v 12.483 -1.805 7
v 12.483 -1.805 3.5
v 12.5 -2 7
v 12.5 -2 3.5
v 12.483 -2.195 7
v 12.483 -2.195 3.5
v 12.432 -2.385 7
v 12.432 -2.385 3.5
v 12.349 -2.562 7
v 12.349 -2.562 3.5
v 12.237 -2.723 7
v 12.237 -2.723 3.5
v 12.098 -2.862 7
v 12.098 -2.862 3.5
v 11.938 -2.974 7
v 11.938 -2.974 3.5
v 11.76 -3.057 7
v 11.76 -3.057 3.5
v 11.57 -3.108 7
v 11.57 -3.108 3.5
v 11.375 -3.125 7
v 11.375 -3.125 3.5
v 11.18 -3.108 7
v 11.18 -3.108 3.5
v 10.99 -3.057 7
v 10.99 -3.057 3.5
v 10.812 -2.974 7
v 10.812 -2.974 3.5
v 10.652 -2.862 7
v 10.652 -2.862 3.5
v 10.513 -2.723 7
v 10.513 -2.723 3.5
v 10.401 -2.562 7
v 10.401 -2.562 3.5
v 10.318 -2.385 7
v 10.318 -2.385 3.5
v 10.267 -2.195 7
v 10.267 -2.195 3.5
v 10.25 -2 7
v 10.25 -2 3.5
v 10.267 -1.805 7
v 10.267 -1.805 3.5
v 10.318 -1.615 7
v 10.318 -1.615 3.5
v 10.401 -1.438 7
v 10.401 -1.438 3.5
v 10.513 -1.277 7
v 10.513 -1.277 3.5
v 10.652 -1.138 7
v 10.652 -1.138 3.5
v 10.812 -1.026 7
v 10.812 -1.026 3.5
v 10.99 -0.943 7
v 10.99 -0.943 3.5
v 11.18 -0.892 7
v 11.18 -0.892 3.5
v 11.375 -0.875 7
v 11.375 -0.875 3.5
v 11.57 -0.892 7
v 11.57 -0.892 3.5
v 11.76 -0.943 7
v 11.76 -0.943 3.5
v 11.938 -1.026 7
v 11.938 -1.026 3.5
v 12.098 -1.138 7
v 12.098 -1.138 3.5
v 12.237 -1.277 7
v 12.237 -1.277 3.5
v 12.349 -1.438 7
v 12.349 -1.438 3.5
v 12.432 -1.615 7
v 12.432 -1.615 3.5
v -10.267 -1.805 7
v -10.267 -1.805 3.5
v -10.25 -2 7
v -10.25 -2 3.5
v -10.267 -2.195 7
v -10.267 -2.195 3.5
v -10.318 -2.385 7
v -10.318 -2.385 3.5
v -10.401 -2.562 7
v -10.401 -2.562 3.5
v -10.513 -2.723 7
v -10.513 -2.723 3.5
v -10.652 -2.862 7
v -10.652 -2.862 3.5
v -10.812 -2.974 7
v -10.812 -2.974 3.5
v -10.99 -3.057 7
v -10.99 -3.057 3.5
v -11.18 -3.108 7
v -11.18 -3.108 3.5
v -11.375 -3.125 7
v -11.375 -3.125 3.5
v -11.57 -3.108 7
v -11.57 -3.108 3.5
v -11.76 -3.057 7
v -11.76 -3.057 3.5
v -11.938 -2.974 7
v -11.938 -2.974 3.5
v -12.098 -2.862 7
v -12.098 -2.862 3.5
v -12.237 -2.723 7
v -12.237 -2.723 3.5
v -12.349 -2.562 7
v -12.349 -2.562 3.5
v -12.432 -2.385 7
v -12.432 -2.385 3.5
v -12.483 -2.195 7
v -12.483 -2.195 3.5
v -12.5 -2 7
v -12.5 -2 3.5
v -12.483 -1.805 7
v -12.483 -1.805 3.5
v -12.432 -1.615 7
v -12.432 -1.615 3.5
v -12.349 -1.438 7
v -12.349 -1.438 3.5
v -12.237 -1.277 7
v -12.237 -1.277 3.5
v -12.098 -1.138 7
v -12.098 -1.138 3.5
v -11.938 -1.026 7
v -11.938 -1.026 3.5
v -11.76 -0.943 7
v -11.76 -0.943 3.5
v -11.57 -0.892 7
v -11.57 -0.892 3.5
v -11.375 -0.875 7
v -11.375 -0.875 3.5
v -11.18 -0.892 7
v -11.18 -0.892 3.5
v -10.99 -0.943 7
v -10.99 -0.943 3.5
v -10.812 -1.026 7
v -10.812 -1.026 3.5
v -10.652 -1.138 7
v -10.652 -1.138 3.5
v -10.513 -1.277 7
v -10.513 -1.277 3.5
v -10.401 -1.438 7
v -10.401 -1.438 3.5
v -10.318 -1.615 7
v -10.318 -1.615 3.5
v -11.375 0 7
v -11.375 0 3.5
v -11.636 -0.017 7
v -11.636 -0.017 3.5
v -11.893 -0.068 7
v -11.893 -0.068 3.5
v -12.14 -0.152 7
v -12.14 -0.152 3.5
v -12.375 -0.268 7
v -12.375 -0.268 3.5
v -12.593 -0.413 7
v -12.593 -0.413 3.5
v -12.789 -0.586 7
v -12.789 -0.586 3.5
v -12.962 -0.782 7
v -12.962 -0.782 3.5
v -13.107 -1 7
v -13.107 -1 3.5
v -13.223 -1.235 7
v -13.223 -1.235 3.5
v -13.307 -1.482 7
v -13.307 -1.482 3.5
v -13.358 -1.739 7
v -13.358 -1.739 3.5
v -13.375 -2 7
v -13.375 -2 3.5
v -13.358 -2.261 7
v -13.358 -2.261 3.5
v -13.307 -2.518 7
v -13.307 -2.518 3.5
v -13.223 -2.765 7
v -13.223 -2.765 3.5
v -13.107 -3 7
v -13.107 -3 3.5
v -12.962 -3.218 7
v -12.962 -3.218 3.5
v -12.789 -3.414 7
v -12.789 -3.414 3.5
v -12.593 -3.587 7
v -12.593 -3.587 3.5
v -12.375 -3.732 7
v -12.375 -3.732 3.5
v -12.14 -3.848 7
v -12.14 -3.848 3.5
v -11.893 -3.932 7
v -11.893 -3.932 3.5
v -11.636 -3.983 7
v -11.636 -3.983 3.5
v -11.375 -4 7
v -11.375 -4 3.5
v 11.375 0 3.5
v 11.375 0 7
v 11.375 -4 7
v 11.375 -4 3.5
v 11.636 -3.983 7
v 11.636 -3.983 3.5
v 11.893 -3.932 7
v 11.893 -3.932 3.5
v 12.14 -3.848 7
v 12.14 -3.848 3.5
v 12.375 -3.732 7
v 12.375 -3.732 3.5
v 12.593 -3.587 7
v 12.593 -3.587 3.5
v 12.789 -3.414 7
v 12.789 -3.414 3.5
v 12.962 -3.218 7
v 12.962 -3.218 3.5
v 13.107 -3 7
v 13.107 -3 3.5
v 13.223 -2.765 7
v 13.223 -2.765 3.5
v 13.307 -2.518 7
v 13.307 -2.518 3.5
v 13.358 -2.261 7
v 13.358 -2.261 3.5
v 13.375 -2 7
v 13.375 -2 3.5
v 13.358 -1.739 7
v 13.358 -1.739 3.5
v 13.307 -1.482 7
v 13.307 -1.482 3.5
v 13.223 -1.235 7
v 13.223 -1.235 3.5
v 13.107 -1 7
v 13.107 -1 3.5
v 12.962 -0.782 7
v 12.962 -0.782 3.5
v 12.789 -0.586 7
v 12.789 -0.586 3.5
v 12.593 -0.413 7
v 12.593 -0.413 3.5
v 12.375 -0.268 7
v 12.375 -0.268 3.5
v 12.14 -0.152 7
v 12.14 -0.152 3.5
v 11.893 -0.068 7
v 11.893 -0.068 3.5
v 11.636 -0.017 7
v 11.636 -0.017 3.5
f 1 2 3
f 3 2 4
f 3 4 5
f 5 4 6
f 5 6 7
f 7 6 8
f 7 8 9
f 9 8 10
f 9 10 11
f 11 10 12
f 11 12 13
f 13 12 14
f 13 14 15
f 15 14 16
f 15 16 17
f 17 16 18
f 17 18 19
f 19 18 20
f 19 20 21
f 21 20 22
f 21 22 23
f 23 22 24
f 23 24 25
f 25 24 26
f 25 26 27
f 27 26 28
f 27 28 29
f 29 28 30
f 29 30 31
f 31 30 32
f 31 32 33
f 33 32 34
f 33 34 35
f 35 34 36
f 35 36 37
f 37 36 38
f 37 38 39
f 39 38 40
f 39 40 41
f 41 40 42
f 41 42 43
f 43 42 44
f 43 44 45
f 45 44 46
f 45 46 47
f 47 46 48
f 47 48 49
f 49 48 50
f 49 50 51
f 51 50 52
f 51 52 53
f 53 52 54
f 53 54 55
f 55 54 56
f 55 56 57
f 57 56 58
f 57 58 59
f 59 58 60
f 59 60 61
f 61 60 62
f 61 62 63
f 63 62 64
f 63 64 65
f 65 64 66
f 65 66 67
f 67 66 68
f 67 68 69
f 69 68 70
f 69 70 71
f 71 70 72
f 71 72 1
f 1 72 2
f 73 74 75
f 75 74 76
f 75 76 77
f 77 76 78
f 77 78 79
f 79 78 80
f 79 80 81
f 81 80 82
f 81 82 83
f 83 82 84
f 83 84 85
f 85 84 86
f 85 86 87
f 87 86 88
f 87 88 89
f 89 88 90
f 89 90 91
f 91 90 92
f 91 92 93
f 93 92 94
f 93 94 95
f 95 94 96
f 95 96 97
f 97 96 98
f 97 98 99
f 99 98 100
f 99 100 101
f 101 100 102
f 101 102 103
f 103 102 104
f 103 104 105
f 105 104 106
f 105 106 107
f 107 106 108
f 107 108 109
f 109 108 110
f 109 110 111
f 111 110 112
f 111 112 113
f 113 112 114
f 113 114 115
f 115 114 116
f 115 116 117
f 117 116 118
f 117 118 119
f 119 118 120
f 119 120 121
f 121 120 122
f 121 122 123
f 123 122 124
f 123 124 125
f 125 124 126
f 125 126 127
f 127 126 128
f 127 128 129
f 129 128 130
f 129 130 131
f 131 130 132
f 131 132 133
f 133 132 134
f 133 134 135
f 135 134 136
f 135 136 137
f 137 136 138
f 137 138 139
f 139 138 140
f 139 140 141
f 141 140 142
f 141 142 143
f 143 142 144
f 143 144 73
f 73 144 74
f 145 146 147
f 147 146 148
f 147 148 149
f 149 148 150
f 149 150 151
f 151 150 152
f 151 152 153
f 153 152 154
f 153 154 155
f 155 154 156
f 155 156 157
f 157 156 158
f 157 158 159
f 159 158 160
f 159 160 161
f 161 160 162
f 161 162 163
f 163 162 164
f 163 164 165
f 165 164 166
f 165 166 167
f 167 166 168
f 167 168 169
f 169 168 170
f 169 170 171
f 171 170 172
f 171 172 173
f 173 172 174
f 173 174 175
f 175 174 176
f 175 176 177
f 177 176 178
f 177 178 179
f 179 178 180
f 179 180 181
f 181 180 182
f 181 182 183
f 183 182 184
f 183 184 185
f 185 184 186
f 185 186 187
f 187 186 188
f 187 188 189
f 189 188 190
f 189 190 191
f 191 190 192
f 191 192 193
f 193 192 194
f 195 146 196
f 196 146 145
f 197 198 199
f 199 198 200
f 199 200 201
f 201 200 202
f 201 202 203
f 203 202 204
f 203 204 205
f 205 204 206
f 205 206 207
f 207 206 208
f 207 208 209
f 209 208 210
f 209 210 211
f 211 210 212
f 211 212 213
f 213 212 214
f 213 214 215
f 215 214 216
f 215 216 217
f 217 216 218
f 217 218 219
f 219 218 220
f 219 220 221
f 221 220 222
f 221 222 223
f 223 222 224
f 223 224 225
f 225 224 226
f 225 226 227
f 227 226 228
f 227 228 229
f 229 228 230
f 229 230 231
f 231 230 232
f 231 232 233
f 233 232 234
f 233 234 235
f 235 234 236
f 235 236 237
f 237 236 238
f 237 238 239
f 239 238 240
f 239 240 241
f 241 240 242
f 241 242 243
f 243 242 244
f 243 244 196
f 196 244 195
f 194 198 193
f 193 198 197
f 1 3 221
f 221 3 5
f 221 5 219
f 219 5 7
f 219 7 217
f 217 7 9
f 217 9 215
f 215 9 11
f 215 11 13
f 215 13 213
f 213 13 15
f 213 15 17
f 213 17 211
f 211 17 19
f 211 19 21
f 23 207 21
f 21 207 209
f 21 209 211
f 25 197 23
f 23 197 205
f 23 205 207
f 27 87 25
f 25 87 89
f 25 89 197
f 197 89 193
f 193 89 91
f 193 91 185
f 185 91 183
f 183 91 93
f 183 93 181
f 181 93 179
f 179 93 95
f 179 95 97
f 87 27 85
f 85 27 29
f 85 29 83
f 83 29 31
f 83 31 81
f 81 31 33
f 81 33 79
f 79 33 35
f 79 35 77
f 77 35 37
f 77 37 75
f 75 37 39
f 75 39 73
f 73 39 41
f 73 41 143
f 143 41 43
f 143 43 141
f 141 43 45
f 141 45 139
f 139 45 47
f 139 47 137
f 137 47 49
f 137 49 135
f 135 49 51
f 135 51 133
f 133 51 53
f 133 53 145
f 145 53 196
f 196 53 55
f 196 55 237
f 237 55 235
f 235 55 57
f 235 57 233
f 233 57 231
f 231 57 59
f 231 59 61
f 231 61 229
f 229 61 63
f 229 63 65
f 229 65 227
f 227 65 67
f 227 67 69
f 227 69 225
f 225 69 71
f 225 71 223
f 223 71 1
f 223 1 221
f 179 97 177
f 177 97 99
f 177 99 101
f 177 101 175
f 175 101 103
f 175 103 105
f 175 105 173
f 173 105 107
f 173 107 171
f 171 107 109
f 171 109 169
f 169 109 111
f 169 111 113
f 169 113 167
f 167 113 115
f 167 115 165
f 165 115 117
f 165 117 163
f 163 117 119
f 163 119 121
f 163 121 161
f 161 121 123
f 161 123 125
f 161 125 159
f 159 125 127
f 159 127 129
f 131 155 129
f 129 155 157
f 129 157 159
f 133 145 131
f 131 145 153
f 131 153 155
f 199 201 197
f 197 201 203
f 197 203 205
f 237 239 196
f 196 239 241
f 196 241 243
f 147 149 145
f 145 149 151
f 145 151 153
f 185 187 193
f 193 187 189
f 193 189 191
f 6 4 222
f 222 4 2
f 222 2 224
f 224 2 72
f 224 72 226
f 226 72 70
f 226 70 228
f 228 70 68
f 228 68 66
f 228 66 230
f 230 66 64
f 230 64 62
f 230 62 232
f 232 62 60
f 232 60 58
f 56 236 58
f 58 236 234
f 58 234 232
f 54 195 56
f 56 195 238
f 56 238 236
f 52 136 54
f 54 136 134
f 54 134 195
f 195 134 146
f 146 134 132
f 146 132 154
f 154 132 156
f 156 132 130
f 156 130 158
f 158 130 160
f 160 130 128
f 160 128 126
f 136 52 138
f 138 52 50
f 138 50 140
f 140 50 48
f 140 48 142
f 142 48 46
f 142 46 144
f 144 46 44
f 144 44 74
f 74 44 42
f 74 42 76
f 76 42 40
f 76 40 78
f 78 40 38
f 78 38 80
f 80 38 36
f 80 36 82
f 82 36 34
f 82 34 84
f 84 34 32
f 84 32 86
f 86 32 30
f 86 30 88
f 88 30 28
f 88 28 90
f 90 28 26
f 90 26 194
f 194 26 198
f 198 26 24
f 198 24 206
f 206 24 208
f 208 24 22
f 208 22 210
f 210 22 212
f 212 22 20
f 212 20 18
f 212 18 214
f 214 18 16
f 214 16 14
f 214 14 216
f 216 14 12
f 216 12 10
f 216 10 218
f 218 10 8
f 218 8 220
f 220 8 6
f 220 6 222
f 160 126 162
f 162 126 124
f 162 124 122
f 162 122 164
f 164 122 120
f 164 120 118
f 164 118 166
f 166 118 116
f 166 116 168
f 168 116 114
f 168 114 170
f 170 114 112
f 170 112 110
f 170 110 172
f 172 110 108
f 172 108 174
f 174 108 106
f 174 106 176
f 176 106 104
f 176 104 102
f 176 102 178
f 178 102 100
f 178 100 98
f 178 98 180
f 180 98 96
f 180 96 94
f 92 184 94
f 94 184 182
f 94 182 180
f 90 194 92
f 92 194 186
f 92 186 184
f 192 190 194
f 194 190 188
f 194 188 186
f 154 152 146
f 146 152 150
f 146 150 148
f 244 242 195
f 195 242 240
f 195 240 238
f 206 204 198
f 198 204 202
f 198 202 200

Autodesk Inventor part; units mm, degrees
ref_plane "YZ Plane" through (0, 0, 0) normal (1, 0, 0) x (0, 1, 0)
ref_plane "XZ Plane" through (0, 0, 0) normal (0, 1, 0) x (-1, 0, 0)
ref_plane "XY Plane" through (0, 0, 0) normal (0, 0, 1) x (1, 0, 0)
sketch "Sketch1" plane through (0, 0, 0) normal (0, 0, 1) x (1, 0, 0)
  circle A0 centre (-22.75, 0) radius 2.25 projected
  circle A1 centre (22.75, 0) radius 2.25 projected
  line L0 (-22.75, 0) -> (22.75, 0) construction
  line L1 (-22.75, -4) -> (22.75, -4)
  line L2 (22.75, 4) -> (-22.75, 4)
  arc A2 (-22.75, 4) -> (-22.75, -4) centre (-22.75, 0) ccw
  arc A3 (22.75, -4) -> (22.75, 4) centre (22.75, 0) ccw
  point P0 (0, 0)
  point P1 (0, 0)
  dimension "d0" = 8
extrude "Extrusion1" add sketch "Sketch1" along normal blind 7
scale "Scale1" factors (0.5, 0.5, 0.5) then translate (0, -2, 3.5) bodies 1
properties part number "MassiveToe1"
